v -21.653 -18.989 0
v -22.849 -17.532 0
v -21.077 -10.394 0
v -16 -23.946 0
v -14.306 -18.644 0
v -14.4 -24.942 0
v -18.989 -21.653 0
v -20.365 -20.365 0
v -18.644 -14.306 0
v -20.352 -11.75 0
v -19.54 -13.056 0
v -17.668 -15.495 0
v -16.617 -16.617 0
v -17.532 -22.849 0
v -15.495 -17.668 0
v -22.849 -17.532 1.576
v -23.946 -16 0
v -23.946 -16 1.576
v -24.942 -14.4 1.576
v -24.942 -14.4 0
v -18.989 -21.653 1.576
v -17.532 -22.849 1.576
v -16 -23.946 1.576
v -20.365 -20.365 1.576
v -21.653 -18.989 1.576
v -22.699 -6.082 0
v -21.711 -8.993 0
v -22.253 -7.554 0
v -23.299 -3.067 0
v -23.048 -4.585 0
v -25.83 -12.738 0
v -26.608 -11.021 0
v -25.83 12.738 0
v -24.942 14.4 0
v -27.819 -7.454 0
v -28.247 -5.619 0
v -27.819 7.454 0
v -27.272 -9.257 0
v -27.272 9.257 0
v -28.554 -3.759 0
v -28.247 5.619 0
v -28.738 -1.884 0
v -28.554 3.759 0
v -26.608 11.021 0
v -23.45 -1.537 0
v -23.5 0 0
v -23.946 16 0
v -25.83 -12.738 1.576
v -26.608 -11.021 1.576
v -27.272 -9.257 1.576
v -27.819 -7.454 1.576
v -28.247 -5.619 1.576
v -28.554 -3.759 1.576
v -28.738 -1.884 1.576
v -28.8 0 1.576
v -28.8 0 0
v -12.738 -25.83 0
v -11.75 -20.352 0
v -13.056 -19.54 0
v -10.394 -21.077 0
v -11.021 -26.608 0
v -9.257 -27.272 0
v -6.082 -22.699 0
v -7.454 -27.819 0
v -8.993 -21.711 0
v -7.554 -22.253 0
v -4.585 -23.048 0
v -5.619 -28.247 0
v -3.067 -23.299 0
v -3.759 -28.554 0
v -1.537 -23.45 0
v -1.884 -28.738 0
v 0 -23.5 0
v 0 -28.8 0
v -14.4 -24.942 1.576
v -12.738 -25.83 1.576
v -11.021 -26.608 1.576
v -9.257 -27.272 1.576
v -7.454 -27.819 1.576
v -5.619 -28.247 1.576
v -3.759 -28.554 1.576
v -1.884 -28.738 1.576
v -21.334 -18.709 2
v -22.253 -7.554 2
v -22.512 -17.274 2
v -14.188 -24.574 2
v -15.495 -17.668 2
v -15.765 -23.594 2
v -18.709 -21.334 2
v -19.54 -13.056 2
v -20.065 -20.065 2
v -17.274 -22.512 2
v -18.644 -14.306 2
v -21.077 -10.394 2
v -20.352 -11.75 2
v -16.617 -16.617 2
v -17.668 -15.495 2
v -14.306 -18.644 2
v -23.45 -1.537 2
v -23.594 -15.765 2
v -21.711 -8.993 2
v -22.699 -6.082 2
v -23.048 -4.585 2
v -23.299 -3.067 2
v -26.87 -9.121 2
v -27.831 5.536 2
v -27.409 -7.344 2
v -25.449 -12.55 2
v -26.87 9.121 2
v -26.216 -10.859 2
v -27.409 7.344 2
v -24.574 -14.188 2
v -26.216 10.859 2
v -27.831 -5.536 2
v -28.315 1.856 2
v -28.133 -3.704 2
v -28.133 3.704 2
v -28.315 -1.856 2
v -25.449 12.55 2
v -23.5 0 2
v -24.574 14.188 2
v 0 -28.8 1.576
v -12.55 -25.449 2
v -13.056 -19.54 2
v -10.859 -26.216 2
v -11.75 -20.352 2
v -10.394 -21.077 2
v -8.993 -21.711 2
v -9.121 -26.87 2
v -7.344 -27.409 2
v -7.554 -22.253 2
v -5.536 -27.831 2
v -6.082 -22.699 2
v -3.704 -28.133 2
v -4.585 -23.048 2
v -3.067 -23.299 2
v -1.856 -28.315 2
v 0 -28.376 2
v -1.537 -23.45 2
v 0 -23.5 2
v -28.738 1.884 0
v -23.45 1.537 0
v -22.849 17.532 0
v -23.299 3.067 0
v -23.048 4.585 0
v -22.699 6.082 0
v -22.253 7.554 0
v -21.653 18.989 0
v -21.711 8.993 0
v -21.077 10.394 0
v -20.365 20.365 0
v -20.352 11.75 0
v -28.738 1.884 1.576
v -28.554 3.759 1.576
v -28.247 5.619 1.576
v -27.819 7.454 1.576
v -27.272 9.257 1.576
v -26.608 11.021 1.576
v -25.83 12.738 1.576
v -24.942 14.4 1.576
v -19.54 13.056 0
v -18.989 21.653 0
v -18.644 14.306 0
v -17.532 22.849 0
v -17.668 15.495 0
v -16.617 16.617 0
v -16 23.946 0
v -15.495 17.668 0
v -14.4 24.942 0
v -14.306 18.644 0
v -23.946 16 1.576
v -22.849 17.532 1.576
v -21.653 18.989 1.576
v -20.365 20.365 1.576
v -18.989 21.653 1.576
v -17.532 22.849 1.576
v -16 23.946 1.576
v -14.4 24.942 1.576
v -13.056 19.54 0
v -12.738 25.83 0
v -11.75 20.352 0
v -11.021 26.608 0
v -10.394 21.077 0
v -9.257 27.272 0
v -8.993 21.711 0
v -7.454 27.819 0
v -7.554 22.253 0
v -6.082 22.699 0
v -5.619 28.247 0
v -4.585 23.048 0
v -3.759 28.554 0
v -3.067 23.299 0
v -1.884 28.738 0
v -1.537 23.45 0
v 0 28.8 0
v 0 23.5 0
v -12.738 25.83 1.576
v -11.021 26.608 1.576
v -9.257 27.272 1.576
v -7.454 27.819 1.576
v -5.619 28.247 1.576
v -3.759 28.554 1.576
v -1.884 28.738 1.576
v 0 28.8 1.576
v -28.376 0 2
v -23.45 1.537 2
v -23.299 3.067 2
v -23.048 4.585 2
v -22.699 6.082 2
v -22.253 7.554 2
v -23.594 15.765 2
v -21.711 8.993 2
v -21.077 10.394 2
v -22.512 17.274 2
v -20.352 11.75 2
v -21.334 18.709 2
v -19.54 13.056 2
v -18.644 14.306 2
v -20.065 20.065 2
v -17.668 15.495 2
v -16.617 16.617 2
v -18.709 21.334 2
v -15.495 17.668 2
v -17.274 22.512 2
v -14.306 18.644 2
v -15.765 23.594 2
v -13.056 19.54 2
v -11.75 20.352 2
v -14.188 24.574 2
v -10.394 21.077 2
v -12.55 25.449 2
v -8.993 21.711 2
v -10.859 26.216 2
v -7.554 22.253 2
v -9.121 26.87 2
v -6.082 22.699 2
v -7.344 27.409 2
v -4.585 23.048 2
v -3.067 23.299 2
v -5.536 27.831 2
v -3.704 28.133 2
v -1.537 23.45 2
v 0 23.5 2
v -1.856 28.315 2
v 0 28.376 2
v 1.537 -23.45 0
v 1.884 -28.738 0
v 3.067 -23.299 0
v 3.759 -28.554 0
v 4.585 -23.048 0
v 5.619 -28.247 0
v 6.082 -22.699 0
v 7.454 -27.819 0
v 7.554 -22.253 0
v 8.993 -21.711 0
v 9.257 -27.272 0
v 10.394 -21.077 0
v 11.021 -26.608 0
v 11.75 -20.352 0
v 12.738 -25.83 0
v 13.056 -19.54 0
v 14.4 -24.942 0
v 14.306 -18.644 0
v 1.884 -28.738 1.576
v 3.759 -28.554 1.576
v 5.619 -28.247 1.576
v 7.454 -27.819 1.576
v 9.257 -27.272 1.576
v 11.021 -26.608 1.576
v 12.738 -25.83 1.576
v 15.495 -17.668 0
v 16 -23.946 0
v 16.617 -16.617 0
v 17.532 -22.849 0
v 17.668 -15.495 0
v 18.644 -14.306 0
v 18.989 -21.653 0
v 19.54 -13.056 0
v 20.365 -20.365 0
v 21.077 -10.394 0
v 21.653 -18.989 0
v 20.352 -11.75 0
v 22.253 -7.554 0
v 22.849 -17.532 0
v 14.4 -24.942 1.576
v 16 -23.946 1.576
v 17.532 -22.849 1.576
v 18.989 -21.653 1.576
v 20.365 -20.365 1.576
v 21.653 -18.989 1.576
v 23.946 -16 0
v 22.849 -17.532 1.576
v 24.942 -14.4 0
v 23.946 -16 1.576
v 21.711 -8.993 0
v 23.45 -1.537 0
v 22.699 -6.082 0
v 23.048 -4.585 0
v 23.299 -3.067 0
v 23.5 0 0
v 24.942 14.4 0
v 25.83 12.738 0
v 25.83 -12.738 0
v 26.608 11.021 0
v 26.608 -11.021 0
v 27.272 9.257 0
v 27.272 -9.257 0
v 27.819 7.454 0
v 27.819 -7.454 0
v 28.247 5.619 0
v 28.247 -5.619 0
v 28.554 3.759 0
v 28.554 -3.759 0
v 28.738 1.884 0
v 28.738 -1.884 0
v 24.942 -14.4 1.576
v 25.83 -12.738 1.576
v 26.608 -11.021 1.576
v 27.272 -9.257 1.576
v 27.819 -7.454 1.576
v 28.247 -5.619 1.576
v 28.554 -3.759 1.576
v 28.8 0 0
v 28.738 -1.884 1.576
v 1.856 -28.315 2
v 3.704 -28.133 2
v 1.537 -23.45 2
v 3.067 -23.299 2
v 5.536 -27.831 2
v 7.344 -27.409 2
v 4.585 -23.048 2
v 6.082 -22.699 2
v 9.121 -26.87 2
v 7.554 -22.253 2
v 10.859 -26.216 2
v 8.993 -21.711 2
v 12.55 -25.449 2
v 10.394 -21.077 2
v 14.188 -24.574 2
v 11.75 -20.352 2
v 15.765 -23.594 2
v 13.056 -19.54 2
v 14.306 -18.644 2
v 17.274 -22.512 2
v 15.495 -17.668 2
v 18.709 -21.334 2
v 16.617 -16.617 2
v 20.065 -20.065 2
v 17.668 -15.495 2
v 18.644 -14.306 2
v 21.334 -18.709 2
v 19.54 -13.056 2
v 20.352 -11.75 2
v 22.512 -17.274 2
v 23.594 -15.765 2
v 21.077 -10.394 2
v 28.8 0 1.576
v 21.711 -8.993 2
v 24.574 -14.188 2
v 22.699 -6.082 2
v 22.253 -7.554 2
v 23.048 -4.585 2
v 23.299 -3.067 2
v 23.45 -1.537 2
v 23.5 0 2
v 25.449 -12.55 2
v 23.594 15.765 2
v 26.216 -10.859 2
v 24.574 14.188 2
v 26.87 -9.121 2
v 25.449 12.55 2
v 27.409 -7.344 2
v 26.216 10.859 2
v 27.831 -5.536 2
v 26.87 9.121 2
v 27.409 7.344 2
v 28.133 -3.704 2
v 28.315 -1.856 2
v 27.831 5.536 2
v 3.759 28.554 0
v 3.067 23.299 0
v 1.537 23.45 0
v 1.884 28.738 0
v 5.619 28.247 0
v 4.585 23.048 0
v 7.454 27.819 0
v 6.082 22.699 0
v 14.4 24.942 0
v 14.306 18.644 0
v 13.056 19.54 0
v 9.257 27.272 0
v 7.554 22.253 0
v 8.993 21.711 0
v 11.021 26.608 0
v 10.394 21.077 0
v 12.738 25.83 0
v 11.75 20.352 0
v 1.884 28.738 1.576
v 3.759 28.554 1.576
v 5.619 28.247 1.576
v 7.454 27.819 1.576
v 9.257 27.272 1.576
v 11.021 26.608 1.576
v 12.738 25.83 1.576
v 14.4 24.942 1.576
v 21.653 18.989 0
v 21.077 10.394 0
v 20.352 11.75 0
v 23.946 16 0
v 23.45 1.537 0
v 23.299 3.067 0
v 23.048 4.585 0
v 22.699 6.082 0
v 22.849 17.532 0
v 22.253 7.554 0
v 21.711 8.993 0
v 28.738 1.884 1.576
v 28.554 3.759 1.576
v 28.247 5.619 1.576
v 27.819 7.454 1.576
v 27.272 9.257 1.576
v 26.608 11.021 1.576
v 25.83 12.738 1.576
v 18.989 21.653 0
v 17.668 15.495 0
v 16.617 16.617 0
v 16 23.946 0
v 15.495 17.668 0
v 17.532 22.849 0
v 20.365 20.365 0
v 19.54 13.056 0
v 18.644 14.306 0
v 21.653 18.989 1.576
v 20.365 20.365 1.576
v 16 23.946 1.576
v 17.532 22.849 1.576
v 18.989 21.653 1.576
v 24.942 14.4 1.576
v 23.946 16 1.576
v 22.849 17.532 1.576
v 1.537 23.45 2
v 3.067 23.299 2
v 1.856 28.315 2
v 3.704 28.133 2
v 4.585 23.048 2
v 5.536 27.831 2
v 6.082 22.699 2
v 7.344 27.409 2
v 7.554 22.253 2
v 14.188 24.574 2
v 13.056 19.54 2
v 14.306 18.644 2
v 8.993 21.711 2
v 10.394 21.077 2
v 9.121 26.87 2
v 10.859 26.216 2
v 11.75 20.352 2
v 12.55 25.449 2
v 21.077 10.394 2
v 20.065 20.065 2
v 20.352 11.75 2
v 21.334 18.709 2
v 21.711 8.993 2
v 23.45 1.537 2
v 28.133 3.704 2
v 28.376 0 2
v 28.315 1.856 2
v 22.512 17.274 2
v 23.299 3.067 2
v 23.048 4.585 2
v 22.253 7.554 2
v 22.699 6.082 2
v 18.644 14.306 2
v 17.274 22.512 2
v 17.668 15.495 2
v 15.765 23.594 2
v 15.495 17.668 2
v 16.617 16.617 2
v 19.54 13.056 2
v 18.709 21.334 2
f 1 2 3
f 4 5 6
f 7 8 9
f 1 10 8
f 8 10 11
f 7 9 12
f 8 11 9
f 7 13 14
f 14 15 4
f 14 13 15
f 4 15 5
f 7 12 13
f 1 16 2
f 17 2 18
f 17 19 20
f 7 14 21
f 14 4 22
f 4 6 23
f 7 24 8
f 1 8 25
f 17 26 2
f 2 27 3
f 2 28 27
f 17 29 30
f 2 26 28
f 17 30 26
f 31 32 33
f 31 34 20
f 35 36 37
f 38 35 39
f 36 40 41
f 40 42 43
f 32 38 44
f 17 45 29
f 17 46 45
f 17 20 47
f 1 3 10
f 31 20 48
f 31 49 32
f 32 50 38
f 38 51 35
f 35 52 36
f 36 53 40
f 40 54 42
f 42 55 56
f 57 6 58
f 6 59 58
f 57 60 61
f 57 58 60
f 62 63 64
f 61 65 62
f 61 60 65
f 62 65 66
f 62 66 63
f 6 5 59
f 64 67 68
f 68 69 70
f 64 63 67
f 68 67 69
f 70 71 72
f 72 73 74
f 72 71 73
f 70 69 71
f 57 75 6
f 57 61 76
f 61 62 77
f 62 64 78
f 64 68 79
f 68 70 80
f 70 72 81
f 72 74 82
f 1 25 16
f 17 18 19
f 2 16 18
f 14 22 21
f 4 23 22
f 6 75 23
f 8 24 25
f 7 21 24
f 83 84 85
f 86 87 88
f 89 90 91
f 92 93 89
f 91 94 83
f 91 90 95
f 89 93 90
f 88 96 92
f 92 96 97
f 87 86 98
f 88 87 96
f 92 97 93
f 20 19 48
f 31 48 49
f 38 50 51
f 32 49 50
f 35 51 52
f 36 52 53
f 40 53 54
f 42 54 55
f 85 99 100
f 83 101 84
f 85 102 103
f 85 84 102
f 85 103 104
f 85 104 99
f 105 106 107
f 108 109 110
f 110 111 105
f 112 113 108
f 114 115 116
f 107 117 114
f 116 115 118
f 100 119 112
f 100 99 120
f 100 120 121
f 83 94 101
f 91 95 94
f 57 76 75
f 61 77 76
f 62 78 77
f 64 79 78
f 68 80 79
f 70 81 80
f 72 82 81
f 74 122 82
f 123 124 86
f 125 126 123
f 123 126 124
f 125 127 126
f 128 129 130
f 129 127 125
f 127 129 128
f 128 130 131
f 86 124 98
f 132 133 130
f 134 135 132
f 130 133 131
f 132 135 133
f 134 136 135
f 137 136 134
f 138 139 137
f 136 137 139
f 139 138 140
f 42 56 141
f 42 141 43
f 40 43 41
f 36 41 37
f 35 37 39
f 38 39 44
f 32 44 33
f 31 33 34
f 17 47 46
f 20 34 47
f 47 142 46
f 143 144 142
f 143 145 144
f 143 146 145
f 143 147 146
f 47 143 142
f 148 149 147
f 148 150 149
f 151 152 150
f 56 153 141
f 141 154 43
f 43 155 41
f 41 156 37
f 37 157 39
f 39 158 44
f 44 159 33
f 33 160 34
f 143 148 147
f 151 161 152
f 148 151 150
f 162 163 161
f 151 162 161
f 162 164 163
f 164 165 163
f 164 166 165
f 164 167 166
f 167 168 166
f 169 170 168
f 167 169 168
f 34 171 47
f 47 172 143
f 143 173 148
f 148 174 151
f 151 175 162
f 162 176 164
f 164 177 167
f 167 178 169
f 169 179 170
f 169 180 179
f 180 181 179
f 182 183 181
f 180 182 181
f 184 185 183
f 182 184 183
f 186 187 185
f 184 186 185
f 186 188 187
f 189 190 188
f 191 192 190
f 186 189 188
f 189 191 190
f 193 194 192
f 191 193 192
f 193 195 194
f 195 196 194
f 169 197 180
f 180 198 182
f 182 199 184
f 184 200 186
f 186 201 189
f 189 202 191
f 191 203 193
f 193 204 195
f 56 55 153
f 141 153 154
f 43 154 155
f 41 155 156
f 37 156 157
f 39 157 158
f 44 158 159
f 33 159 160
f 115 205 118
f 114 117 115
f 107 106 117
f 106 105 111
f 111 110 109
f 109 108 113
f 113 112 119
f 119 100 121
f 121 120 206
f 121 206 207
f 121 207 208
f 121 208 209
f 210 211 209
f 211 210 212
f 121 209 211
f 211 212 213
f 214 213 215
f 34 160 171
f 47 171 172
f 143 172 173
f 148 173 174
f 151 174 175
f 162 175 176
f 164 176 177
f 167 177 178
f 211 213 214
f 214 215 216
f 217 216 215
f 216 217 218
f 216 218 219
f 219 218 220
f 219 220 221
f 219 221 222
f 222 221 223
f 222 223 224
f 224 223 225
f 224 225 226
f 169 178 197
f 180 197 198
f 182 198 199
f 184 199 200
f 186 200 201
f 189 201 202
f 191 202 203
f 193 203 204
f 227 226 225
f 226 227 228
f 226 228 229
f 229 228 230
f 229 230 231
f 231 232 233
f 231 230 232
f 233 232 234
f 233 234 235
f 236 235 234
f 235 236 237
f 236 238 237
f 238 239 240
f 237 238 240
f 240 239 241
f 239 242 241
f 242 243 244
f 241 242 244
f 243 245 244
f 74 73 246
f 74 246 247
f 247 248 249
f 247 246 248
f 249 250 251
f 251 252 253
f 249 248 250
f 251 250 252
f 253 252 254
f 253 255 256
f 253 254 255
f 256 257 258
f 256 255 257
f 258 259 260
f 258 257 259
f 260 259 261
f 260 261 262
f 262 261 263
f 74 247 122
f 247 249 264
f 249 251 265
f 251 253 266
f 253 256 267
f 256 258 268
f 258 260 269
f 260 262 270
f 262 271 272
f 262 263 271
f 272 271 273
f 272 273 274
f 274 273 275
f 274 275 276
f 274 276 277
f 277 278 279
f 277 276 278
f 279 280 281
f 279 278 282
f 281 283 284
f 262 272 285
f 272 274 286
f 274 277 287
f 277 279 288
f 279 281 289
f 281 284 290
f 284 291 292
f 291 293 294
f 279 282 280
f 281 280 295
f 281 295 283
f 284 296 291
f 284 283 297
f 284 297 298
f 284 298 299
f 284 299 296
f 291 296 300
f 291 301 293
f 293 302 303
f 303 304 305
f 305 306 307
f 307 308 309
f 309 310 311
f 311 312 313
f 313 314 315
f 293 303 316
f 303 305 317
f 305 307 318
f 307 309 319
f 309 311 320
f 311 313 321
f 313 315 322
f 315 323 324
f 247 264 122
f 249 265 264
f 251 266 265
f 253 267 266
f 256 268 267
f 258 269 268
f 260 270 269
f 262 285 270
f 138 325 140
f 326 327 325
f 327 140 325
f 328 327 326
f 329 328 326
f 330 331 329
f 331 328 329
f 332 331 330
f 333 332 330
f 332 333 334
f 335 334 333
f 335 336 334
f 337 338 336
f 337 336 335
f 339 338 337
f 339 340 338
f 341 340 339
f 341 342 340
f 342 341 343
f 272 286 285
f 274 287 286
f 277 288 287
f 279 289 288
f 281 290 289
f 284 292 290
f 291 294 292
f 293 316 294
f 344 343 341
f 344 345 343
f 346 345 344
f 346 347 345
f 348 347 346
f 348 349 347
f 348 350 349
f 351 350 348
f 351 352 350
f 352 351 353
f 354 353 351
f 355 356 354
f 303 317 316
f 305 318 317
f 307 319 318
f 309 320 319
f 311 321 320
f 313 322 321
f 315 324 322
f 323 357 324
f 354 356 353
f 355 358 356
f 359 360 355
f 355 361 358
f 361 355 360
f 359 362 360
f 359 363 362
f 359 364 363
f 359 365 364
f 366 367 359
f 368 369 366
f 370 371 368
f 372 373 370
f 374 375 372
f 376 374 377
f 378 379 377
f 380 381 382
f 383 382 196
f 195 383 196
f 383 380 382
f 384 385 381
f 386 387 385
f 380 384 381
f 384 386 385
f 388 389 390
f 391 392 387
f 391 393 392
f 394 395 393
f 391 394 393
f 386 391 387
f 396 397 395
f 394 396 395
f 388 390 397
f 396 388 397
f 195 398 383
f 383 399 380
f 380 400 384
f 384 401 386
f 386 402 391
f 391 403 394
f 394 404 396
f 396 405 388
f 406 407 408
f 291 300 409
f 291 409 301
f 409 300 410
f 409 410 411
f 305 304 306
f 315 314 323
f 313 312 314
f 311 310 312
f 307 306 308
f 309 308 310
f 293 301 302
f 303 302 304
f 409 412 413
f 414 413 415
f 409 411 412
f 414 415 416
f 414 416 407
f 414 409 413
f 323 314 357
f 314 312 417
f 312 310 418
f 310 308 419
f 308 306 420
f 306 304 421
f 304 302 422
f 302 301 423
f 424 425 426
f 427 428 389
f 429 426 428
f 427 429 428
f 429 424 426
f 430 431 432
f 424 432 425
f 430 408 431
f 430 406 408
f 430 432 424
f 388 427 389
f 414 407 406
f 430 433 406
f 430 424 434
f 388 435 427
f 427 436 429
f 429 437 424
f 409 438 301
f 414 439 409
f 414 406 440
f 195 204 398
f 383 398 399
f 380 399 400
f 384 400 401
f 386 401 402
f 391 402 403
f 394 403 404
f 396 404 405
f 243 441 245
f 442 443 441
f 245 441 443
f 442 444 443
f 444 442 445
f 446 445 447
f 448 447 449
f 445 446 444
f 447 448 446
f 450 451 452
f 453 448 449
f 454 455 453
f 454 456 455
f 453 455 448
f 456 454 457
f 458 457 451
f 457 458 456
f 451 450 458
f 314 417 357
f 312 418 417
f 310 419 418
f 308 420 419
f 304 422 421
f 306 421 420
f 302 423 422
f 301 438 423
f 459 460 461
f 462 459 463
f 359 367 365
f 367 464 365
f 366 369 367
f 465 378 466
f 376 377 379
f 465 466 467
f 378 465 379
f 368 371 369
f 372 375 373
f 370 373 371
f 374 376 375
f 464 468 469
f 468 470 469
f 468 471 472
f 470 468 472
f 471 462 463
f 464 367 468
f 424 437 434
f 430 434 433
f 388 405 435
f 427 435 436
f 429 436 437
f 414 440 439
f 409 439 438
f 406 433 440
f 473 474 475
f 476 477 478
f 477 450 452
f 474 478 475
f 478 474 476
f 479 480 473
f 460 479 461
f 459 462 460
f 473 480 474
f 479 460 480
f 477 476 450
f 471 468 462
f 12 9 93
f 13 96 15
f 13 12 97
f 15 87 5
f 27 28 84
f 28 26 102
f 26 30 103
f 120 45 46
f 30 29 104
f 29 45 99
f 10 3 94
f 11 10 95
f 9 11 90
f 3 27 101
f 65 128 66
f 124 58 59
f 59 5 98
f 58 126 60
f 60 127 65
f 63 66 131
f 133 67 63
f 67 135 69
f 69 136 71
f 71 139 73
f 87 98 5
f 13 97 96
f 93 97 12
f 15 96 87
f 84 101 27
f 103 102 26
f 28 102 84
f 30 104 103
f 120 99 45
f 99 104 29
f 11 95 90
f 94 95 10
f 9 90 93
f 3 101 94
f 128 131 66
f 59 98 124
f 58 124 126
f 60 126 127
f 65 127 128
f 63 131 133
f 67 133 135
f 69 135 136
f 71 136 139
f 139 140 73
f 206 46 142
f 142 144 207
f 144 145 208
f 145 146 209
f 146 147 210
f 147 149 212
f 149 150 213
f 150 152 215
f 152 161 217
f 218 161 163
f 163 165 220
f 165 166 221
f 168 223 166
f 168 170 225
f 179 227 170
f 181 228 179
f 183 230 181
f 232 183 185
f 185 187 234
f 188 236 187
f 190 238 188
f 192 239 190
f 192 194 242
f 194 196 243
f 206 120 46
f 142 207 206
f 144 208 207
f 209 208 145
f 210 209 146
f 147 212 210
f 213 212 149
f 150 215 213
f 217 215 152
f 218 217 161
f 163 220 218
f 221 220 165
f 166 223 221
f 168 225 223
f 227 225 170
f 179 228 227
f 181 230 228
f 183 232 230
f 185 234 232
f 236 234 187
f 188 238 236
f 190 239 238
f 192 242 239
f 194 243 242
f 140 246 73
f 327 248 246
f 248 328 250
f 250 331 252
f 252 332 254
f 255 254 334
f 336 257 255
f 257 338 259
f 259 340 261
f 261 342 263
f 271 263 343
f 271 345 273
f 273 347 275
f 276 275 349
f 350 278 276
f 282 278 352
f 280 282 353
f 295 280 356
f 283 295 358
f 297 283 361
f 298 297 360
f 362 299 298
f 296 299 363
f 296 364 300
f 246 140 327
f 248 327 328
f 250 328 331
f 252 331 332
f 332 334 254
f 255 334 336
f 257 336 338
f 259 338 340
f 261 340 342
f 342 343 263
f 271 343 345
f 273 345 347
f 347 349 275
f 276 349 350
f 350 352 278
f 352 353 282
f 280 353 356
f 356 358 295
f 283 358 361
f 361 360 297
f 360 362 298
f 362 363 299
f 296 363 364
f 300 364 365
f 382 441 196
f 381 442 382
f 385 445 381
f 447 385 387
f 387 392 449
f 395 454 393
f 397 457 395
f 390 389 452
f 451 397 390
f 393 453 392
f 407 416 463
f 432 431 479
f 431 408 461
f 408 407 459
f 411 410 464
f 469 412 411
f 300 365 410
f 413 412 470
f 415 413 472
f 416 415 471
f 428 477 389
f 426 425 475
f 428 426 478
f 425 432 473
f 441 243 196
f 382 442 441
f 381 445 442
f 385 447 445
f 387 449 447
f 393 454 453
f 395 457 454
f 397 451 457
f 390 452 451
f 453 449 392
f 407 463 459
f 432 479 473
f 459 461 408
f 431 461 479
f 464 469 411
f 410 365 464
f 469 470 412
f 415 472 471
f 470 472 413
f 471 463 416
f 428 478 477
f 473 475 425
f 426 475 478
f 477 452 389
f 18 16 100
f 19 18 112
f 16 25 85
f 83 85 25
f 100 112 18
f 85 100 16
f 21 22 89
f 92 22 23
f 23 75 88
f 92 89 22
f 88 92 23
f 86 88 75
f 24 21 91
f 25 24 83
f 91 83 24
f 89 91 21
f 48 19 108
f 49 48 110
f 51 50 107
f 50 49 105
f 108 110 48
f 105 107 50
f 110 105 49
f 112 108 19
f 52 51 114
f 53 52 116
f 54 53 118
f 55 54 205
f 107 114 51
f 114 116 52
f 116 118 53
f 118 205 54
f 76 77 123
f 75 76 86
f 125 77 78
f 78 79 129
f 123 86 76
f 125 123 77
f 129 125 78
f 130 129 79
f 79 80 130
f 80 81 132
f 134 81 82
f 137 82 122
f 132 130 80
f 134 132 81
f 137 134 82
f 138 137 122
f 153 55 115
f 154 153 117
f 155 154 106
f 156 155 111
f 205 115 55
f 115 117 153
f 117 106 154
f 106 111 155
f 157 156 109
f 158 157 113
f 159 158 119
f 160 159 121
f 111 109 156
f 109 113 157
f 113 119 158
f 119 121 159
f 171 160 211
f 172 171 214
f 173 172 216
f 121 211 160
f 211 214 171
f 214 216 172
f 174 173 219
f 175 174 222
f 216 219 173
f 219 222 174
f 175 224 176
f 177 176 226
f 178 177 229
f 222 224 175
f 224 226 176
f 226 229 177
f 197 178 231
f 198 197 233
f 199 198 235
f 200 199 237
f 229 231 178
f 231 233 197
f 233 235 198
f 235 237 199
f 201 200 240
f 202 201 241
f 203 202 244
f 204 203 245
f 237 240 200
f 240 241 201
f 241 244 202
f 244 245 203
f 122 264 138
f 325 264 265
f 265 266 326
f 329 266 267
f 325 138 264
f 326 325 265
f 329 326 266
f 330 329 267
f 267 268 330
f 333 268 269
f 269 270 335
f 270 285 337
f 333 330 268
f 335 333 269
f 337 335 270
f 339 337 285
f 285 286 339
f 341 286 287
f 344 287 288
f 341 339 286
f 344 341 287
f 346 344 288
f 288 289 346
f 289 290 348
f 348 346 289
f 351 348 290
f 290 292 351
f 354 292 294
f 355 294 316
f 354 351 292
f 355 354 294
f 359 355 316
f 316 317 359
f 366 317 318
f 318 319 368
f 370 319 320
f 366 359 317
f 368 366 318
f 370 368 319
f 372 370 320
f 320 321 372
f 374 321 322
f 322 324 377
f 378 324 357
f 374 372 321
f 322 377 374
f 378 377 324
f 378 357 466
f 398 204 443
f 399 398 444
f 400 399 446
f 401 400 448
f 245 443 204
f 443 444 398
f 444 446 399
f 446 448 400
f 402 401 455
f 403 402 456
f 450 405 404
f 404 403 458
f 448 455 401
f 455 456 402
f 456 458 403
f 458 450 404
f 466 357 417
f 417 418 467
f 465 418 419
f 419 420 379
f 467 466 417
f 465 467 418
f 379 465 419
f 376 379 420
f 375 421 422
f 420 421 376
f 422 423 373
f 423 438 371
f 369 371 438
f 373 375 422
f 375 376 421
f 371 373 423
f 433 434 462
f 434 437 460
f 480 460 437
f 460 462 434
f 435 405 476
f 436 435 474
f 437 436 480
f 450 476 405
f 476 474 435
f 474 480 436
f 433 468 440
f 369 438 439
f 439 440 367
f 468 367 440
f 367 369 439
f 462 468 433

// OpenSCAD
// file: params.scad
// =====================================================================
//  Boldfit 2.2 L Gallon bottle – replacement cap system
//  SHARED PARAMETERS  (edit THIS file only; every design reads from it)
// =====================================================================
//
//  !!!  The neck numbers below are PLACEHOLDER GUESSES for a generic   !!!
//  !!!  Chinese 2.2 L gym jug.  Replace them with caliper readings     !!!
//  !!!  from the real bottle before printing a final cap.              !!!
//  See ../README.md  ->  "How to measure the neck".
//
// All dimensions in millimetres.

// ---------- BOTTLE NECK (measure these) ----------
neck_major_d   = 60.0;   // outside diameter ACROSS the thread crests
neck_minor_d   = 56.0;   // outside diameter at thread ROOT (bare neck wall)
mouth_id       = 50.0;   // inside diameter of the opening
neck_height    = 14.0;   // top lip  -> top of the shoulder / collar ring
thread_pitch   = 6.0;    // crest-to-crest spacing measured ALONG the axis
thread_starts  = 2;      // 1 = single start, 2 = two parallel threads (count where threads begin at the lip)
thread_turns   = 1.25;   // how many times ONE thread goes round the neck
thread_start_z = 2.0;    // distance from the top lip down to where the thread begins
thread_crest_w = 1.6;    // flat width of the thread crest (axial)
thread_root_w  = 3.6;    // width of the thread at its root (axial)

// ---------- FIT / PRINTER TUNING ----------
radial_clear   = 0.30;   // extra radius in the cap bore.  FDM 0.4 nozzle: 0.25-0.40
axial_clear    = 0.25;   // extra gap each side of the thread flank
wall           = 2.4;    // cap side wall (6 perimeters @ 0.4 mm)
top_t          = 3.0;    // cap top thickness
gasket_t       = 2.0;    // TPU / silicone gasket thickness
gasket_pocket  = 0.8;    // SHALLOW locating pocket – open, wipeable, gasket lifts out
skirt_extra    = 1.5;    // how far the skirt reaches below the thread
$fn            = 96;    // circular resolution (96 = 2 mm facets on a 60 mm cap, plenty for FDM)

// ---------- DERIVED (do not edit) ----------
thread_h       = (neck_major_d - neck_minor_d) / 2;            // radial height of the thread
thread_len     = thread_pitch * thread_starts * thread_turns;  // axial length ONE start covers
cap_bore_d     = neck_major_d + 2 * radial_clear;
cap_od         = cap_bore_d + 2 * wall;
skirt_h        = thread_start_z + thread_len + skirt_extra;
// file: threads.scad
// =====================================================================
//  threads.scad  –  helical thread sweep + bottle-neck model
//  Pure OpenSCAD, no external libraries needed.
// =====================================================================
include <params.scad>

// A right-hand helical thread of trapezoidal section.
//   r_root   : radius where the thread meets the core
//   r_crest  : radius of the crest
//   z_top    : z of the THREAD CENTRE at its upper end (near the lip)
//   z_bottom : z of the thread centre at its lower end
//   starts   : number of starts (spaced 360/starts apart)
module helix_thread(r_root, r_crest, pitch, starts, z_top, z_bottom,
                    crest_w, root_w, steps_per_turn = 96, overlap = 0.5) {
    lead  = pitch * starts;
    turns = (z_top - z_bottom) / lead;
    n     = max(2, ceil(turns * steps_per_turn));
    ri    = r_root - overlap;                    // bury the root inside the core
    for (s = [0 : starts - 1]) {
        a0 = s * 360 / starts;
        pts = [ for (i = [0 : n])
                let (a = i * 360 * turns / n, z = z_bottom + a / 360 * lead,
                     c = cos(a + a0), sn = sin(a + a0))
                each [ [ri * c,      ri * sn,      z - root_w  / 2],
                       [r_crest * c, r_crest * sn, z - crest_w / 2],
                       [r_crest * c, r_crest * sn, z + crest_w / 2],
                       [ri * c,      ri * sn,      z + root_w  / 2] ] ];
        // side quads are split into triangles: the helix makes them non-planar
        faces = concat(
            [[3, 2, 1, 0]],
            [ for (i = [0 : n - 1], j = [0 : 3])
                let (b = 4 * i, k = (j + 1) % 4) each [[b + k, b + k + 4, b + j + 4], [b + k, b + j + 4, b + j]] ],
            [[4 * n, 4 * n + 1, 4 * n + 2, 4 * n + 3]] );
        polyhedron(points = pts, faces = faces, convexity = 10);
    }
}

// The bottle neck in its natural frame: lip (top rim) at z = 0, bottle below.
//   clear_r / clear_z : grow the neck radially / axially – used when this
//                       model is SUBTRACTED from a cap to create the female thread.
//   thread_extend     : extra thread length BELOW the real thread so the groove
//                       in the cap runs all the way out of the skirt.
//   extra_core        : extend the core cylinder (through the cap's open end)
module neck(clear_r = 0, clear_z = 0, thread_extend = 0, extra_core = 0, show_bore = false) {
    rmin = neck_minor_d / 2 + clear_r;
    rmaj = neck_major_d / 2 + clear_r;
    z_top    = -thread_start_z - thread_crest_w / 2;
    z_bottom = z_top - thread_len - thread_extend;
    difference() {
        union() {
            // core
            translate([0, 0, -neck_height - extra_core])
                cylinder(r = rmin, h = neck_height + extra_core);
            // thread
            helix_thread(rmin, rmaj, thread_pitch, thread_starts, z_top, z_bottom,
                         thread_crest_w + 2 * clear_z, thread_root_w + 2 * clear_z);
        }
        if (show_bore)
            translate([0, 0, -neck_height - extra_core - 1])
                cylinder(d = mouth_id, h = neck_height + extra_core + 2);
    }
}

// Reference neck (what we THINK the bottle looks like) – render this to sanity
// check your measurements against the real bottle.
module neck_reference() {
    neck(show_bore = true);
    // shoulder/collar hint
    translate([0, 0, -neck_height - 3]) cylinder(d = neck_major_d + 14, h = 3);
}
// file: 04_port_common.scad
// Shared numbers for the PORT cap (main cap, plug, gasket)
head_d         = 42.0;   // plug head diameter
head_h         = 5.0;    // head thickness above the gasket
head_sink      = 1.5;    // head counterbore depth in the main cap (gasket lives here)
head_clear     = 0.5;    // radial clearance head / counterbore
port_gasket_t  = 1.5;

port_minor_d   = 30.0;   // male plug thread root diameter
port_major_d   = 33.0;   // male plug thread crest diameter
port_pitch     = 3.0;
port_starts    = 2;      // 2-start: a quarter turn opens it
port_turns     = 1.0;
port_crest_w   = 0.8;
port_root_w    = 1.9;
port_thread_h  = (port_major_d - port_minor_d) / 2;
port_tube_wall = 2.4;
port_tube_od   = port_major_d + 2 * radial_clear + 2 * port_tube_wall;
port_len       = port_pitch * port_starts * port_turns;        // axial length one start covers
port_tube_h    = head_sink + 1.5 + port_len + 2.0 - top_t;     // tube below the cap ceiling
port_stem_len  = 1.5 + port_len + 2.0;                         // plug stem below the head

// Male thread of the plug in the plug's natural frame: head underside at z = 0,
// threaded stem pointing +z.  Thread starts 1.5 mm from the head.
module port_male_thread(clear_r = 0, clear_z = 0, extend = 0) {
    rmin = port_minor_d / 2 + clear_r;
    rmaj = port_major_d / 2 + clear_r;
    z_bottom = 1.5 + port_crest_w / 2;             // near the head
    z_top    = z_bottom + port_len + extend;       // towards the stem tip
    union() {
        cylinder(r = rmin, h = z_top + 1);
        helix_thread(rmin, rmaj, port_pitch, port_starts, z_top, z_bottom,
                     port_crest_w + 2 * clear_z, port_root_w + 2 * clear_z);
    }
}
// file: 03_flip_common.scad
// Shared numbers + hinge/latch modules for the FLIP cap (base and lid)
spout_d      = 22;      // drinking hole diameter
spout_off    = 10;      // hole centre offset from cap centre (towards +x, away from hinge)
spout_boss_h = 2.5;     // extra ring under the ceiling so the plug has a 5 mm sealing land
pin_hole_d   = 2.0;     // clearance hole for a 1.75 mm filament pin
ear_w        = 4;       // hinge ear thickness
ear_gap      = 12.6;    // gap between ears (lid knuckle 12 mm + clearance)
ear_r        = 4;       // ear radius around the pin
hinge_out    = 3.0;     // pin axis distance outside the skirt wall
latch_w      = 12;
latch_nub    = 1.0;     // how far the latch nub protrudes beyond the skirt (snap depth 0.7)
nub_top_z    = 1.5;     // (base frame) where the nub ramp starts at the wall
nub_bot_z    = 4.0;     // (base frame) flat bearing face of the nub
lid_t        = 3.0;

module hinge_ears() {
    for (s = [-1, 1])
        translate([-(cap_od / 2 + hinge_out), s * (ear_gap / 2 + ear_w / 2), 0])
            hull() {
                translate([0, 0, ear_r]) rotate([90, 0, 0]) cylinder(r = ear_r, h = ear_w, center = true);
                translate([hinge_out + 1.5, 0, ear_r]) cube([3, ear_w, 2 * ear_r], center = true);
            }
}
// nub: flat bottom face (bearing), ramped top face (lead-in for closing)
module latch_nub() {
    R = cap_od / 2;
    hull() {
        translate([R - 0.6, -latch_w / 2, nub_top_z]) cube([0.6, latch_w, nub_bot_z - nub_top_z]);
        translate([R + latch_nub - 0.3, -latch_w / 2 + 1, nub_bot_z - 0.8]) cube([0.3, latch_w - 2, 0.8]);
    }
}
// file: cap_lib.scad
// =====================================================================
//  cap_lib.scad – shared cap body (female thread, gasket seat, grip, loop)
//  Every cap is modelled PRINT-READY: outer top face on z = 0 (the bed),
//  open skirt pointing UP.  No supports needed.
//
//  Hygiene rules baked in:
//   • thread groove runs OUT of the skirt – no dead-end helix to trap water
//   • gasket seat is a 0.8 mm open pocket with chamfered edge – gasket
//     lifts out, nothing hides behind it
//   • every inside corner is chamfered, outer grip is scallops (wipeable)
// =====================================================================
include <threads.scad>

z_lip = top_t + gasket_t;            // where the bottle lip rests (gasket uncompressed)
cap_h = z_lip + skirt_h;             // total cap height

// ---- grip ------------------------------------------------------------
grip_count   = 24;
scallop_d    = 5.0;        // scallop cutter diameter
scallop_bite = 0.9;        // how deep the scallop cuts into the wall

module grip_outer_solid(h = cap_h) {
    difference() {
        cylinder(d = cap_od, h = h);
        for (i = [0 : grip_count - 1]) rotate(i * 360 / grip_count)
            translate([cap_od / 2 + scallop_d / 2 - scallop_bite, 0, 1.6])
                cylinder(d = scallop_d, h = h);
        // bed-side edge chamfer for a clean first layer and a soft rim
        rotate_extrude() translate([cap_od / 2, 0]) rotate(45) square([1.7, 1.7], center = true);
        // skirt-mouth outer chamfer
        rotate_extrude() translate([cap_od / 2, h]) rotate(45) square([1.2, 1.2], center = true);
    }
}

// ---- the female thread + gasket seat, as a NEGATIVE ------------------
module cap_negative() {
    // bottle neck with clearances, flipped so the lip sits at z_lip
    translate([0, 0, z_lip]) rotate([180, 0, 0])
        neck(clear_r = radial_clear, clear_z = axial_clear,
             thread_extend = skirt_extra + 2 * thread_pitch, extra_core = 30);
    // shallow gasket seat with a 45° chamfered rim (no sharp inside corner)
    translate([0, 0, top_t]) cylinder(d = neck_minor_d + 1.2, h = gasket_pocket + 0.01);
    translate([0, 0, top_t + gasket_pocket - 0.01])
        cylinder(d1 = neck_minor_d + 1.2, d2 = neck_minor_d + 1.2 + 2 * gasket_pocket, h = gasket_pocket);
    // chamfer the ledge-to-bore corner
    translate([0, 0, z_lip - 1.0]) cylinder(d1 = cap_bore_d - 2.0, d2 = cap_bore_d, h = 1.01);
    // lead-in chamfer at the skirt mouth so the cap finds the thread easily
    translate([0, 0, cap_h - 1.2]) cylinder(d1 = cap_bore_d, d2 = cap_bore_d + 2.4, h = 1.21);
}

// ---- complete plain cap body ----------------------------------------
module cap_body() {
    difference() {
        grip_outer_solid();
        cap_negative();
    }
}

// ---- D-loop for the Boldfit strap / a carabiner ---------------------
loop_w  = 16;    // inside width
loop_t  = 4;     // bar thickness
loop_ht = 8;     // height (lies flat on the bed, beside the cap)

module d_loop() {
    translate([cap_od / 2 - 1.5, 0, 0]) difference() {
        hull() {
            translate([0, -(loop_w / 2 + loop_t), 0]) cube([1, loop_w + 2 * loop_t, loop_ht]);
            translate([loop_w / 2 + loop_t, 0, 0]) cylinder(d = loop_w + 2 * loop_t, h = loop_ht);
        }
        hull() {
            translate([loop_t, -loop_w / 2, -1]) cube([1, loop_w, loop_ht + 2]);
            translate([loop_w / 2 + loop_t, 0, -1]) cylinder(d = loop_w, h = loop_ht + 2);
        }
    }
}
// main file
// =====================================================================
//  05  NECK GASKET  – shared by Vault, Flip and Port caps
//  Print in TPU 95A (100 % infill, 0.2 mm layers, slow) – or use the STL as
//  a template to cut a ring from 2 mm food-grade silicone sheet.
//  OD is 0.4 mm larger than the seat so it clicks in and stays put, yet peels
//  out with a fingernail for washing.
// =====================================================================
include <parts.scad>
neck_gasket();
